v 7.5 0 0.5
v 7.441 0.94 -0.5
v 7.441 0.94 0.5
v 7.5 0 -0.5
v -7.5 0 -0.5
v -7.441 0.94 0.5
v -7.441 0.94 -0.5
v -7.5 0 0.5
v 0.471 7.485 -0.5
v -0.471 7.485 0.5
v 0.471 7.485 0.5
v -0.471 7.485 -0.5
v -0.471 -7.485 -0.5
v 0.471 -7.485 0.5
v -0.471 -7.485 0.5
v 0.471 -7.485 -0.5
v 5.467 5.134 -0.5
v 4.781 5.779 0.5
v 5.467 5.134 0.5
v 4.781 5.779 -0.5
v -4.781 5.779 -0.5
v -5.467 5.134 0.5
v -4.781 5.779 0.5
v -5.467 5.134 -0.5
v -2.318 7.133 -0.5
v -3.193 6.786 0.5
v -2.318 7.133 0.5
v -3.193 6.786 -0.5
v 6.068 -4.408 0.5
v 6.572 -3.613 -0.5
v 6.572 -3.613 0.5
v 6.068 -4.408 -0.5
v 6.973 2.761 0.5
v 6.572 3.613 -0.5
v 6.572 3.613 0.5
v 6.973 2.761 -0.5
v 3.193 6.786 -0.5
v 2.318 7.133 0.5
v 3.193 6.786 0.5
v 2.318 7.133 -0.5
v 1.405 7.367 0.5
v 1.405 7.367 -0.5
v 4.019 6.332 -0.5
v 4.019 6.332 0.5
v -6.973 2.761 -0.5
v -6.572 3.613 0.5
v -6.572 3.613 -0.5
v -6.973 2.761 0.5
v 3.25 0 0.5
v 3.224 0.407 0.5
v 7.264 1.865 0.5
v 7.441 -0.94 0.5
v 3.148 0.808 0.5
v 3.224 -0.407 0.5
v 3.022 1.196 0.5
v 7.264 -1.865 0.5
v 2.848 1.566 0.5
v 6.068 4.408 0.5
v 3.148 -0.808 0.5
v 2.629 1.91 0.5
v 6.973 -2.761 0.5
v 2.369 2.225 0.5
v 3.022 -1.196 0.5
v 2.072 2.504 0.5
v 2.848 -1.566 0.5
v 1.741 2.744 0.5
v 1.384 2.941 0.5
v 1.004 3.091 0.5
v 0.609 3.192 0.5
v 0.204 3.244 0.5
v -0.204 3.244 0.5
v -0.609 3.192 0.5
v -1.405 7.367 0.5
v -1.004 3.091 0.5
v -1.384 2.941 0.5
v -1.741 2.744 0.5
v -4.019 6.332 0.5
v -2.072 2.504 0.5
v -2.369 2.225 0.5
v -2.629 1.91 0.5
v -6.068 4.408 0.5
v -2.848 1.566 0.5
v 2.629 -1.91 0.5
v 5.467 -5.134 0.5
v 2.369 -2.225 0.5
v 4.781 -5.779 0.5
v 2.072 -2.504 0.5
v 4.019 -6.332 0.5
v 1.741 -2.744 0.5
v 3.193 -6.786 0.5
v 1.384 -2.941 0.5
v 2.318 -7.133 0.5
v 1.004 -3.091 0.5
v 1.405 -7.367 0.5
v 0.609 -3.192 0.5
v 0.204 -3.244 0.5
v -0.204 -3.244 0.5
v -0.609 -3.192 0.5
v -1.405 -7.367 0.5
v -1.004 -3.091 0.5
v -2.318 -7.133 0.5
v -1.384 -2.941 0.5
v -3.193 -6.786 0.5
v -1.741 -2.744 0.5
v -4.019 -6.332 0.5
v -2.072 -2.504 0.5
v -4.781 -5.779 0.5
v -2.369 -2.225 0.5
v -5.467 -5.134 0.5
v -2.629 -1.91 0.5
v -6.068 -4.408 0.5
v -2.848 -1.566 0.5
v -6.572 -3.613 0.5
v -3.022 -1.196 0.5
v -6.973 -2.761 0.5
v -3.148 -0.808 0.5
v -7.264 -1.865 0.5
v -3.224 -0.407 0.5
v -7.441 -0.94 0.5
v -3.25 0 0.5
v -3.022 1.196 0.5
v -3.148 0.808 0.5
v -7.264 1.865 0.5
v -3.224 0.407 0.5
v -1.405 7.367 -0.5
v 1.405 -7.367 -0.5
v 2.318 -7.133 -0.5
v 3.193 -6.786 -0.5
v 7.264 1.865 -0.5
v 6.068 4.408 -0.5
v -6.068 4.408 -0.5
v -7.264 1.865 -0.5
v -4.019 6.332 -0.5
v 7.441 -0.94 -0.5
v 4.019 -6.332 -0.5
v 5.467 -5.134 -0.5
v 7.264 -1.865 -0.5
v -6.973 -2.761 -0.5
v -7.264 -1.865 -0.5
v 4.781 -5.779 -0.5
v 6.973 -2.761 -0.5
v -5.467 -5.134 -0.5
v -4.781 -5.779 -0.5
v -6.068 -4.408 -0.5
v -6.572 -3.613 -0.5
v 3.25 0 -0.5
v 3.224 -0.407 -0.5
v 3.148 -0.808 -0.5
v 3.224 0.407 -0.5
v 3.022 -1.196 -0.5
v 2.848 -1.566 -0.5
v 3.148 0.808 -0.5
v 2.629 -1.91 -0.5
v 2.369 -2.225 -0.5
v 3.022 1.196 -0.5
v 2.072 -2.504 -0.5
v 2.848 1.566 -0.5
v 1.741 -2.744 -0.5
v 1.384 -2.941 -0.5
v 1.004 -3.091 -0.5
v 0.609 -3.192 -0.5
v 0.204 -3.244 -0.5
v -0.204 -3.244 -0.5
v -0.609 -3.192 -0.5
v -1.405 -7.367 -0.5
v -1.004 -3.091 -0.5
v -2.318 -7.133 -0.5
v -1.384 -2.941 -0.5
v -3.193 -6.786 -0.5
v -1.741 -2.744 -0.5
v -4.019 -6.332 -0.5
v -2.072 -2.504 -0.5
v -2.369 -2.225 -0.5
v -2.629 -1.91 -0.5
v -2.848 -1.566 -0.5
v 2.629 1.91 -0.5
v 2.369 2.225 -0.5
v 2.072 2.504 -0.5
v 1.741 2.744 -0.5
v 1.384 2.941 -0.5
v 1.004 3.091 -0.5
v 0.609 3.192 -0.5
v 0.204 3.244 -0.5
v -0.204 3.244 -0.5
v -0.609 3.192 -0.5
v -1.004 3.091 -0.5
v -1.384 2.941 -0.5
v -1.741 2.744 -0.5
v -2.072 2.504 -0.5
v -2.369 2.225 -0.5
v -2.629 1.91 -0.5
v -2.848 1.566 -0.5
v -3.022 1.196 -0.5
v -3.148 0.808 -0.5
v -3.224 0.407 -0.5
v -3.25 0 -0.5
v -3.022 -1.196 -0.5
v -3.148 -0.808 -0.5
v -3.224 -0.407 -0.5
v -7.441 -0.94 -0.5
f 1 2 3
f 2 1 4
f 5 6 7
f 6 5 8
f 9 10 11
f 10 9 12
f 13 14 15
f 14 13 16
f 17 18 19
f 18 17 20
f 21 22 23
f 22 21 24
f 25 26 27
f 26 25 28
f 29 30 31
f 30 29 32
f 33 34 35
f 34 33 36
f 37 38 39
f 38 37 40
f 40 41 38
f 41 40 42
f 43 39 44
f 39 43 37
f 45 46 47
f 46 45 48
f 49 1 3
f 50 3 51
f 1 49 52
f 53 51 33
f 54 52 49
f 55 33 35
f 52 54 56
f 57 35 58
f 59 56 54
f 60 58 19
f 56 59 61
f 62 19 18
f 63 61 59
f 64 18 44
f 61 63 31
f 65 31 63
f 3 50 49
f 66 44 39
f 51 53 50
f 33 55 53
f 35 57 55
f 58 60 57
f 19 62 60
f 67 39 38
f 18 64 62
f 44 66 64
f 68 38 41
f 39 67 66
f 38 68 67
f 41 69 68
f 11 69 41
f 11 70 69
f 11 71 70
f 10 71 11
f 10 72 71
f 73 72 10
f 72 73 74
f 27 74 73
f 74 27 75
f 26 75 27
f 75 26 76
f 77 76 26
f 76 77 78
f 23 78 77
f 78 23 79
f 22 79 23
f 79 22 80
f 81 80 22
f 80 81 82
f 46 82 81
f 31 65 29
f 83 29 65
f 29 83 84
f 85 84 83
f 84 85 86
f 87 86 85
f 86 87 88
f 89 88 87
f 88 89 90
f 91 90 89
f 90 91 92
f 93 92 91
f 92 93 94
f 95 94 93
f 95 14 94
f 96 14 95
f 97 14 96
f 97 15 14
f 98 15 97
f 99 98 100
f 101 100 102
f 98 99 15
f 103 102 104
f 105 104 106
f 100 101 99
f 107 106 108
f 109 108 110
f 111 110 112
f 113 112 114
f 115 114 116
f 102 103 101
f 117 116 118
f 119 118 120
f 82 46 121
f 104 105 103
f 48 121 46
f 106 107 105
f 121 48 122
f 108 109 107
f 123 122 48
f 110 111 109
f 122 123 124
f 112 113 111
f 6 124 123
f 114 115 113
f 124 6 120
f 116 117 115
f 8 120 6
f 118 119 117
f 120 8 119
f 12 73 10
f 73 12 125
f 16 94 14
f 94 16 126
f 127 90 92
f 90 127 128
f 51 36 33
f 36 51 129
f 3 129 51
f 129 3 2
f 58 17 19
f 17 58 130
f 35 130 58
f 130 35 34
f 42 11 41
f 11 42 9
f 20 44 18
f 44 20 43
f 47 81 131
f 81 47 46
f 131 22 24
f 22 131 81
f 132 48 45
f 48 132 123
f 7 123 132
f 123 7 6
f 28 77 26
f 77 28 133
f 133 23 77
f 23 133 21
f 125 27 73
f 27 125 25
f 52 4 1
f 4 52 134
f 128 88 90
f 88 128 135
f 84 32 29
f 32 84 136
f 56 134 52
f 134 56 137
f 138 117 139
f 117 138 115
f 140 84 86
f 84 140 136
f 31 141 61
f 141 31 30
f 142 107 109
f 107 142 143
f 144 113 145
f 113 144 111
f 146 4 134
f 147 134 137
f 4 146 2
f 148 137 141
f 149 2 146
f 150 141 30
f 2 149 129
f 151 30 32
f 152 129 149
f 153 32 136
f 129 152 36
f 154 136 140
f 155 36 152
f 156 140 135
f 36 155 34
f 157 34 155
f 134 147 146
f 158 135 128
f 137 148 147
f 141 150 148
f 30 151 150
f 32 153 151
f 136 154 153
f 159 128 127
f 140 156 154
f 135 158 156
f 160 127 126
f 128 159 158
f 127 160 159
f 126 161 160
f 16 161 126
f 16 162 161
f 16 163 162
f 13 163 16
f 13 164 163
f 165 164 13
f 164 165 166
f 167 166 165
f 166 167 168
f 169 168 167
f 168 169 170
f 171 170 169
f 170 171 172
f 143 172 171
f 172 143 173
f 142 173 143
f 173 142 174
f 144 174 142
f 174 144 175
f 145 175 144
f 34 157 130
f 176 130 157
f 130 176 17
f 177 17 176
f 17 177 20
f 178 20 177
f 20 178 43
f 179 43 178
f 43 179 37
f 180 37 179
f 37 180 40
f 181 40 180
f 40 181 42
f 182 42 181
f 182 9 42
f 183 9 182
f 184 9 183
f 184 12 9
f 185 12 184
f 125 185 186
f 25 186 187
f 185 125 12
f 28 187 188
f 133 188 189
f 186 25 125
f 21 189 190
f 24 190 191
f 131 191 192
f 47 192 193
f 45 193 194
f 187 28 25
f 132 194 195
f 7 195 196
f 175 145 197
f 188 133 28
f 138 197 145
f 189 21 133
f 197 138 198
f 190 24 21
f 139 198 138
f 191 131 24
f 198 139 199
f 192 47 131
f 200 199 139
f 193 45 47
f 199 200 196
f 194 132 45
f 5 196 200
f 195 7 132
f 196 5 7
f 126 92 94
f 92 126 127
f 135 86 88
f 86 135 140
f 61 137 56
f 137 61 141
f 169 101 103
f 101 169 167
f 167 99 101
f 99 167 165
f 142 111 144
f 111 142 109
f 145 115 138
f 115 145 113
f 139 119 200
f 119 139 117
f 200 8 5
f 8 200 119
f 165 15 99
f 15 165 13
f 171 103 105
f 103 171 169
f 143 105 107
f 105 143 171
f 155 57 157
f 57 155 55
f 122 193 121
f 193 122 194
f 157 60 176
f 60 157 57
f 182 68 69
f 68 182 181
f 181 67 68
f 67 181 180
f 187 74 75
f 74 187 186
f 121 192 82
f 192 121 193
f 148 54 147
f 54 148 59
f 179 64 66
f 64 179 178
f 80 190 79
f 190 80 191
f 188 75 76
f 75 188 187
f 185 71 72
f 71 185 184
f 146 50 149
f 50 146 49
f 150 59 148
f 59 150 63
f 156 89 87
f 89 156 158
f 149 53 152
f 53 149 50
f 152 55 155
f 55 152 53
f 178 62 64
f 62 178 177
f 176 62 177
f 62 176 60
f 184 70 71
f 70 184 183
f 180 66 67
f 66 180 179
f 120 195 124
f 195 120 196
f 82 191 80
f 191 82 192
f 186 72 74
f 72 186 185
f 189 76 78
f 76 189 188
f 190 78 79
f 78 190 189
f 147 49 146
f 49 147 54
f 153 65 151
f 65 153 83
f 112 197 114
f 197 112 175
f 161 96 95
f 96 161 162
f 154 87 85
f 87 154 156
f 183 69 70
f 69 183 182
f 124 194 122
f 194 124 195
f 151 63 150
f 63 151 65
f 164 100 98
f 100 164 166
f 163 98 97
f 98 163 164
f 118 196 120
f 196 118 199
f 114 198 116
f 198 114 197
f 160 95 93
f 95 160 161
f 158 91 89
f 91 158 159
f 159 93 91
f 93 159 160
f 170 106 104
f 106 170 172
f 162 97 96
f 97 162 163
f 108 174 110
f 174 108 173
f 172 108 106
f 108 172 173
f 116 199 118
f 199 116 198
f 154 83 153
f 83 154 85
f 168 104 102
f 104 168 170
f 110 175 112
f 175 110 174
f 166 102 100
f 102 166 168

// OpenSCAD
$fn = 50;


difference() {
	union() {
		translate(v = [0, 0, -0.5000000000]) {
			cylinder(h = 1, r = 7.5000000000);
		}
	}
	union() {
		translate(v = [0, 0, -100.0000000000]) {
			cylinder(h = 200, r = 3.2500000000);
		}
	}
}
